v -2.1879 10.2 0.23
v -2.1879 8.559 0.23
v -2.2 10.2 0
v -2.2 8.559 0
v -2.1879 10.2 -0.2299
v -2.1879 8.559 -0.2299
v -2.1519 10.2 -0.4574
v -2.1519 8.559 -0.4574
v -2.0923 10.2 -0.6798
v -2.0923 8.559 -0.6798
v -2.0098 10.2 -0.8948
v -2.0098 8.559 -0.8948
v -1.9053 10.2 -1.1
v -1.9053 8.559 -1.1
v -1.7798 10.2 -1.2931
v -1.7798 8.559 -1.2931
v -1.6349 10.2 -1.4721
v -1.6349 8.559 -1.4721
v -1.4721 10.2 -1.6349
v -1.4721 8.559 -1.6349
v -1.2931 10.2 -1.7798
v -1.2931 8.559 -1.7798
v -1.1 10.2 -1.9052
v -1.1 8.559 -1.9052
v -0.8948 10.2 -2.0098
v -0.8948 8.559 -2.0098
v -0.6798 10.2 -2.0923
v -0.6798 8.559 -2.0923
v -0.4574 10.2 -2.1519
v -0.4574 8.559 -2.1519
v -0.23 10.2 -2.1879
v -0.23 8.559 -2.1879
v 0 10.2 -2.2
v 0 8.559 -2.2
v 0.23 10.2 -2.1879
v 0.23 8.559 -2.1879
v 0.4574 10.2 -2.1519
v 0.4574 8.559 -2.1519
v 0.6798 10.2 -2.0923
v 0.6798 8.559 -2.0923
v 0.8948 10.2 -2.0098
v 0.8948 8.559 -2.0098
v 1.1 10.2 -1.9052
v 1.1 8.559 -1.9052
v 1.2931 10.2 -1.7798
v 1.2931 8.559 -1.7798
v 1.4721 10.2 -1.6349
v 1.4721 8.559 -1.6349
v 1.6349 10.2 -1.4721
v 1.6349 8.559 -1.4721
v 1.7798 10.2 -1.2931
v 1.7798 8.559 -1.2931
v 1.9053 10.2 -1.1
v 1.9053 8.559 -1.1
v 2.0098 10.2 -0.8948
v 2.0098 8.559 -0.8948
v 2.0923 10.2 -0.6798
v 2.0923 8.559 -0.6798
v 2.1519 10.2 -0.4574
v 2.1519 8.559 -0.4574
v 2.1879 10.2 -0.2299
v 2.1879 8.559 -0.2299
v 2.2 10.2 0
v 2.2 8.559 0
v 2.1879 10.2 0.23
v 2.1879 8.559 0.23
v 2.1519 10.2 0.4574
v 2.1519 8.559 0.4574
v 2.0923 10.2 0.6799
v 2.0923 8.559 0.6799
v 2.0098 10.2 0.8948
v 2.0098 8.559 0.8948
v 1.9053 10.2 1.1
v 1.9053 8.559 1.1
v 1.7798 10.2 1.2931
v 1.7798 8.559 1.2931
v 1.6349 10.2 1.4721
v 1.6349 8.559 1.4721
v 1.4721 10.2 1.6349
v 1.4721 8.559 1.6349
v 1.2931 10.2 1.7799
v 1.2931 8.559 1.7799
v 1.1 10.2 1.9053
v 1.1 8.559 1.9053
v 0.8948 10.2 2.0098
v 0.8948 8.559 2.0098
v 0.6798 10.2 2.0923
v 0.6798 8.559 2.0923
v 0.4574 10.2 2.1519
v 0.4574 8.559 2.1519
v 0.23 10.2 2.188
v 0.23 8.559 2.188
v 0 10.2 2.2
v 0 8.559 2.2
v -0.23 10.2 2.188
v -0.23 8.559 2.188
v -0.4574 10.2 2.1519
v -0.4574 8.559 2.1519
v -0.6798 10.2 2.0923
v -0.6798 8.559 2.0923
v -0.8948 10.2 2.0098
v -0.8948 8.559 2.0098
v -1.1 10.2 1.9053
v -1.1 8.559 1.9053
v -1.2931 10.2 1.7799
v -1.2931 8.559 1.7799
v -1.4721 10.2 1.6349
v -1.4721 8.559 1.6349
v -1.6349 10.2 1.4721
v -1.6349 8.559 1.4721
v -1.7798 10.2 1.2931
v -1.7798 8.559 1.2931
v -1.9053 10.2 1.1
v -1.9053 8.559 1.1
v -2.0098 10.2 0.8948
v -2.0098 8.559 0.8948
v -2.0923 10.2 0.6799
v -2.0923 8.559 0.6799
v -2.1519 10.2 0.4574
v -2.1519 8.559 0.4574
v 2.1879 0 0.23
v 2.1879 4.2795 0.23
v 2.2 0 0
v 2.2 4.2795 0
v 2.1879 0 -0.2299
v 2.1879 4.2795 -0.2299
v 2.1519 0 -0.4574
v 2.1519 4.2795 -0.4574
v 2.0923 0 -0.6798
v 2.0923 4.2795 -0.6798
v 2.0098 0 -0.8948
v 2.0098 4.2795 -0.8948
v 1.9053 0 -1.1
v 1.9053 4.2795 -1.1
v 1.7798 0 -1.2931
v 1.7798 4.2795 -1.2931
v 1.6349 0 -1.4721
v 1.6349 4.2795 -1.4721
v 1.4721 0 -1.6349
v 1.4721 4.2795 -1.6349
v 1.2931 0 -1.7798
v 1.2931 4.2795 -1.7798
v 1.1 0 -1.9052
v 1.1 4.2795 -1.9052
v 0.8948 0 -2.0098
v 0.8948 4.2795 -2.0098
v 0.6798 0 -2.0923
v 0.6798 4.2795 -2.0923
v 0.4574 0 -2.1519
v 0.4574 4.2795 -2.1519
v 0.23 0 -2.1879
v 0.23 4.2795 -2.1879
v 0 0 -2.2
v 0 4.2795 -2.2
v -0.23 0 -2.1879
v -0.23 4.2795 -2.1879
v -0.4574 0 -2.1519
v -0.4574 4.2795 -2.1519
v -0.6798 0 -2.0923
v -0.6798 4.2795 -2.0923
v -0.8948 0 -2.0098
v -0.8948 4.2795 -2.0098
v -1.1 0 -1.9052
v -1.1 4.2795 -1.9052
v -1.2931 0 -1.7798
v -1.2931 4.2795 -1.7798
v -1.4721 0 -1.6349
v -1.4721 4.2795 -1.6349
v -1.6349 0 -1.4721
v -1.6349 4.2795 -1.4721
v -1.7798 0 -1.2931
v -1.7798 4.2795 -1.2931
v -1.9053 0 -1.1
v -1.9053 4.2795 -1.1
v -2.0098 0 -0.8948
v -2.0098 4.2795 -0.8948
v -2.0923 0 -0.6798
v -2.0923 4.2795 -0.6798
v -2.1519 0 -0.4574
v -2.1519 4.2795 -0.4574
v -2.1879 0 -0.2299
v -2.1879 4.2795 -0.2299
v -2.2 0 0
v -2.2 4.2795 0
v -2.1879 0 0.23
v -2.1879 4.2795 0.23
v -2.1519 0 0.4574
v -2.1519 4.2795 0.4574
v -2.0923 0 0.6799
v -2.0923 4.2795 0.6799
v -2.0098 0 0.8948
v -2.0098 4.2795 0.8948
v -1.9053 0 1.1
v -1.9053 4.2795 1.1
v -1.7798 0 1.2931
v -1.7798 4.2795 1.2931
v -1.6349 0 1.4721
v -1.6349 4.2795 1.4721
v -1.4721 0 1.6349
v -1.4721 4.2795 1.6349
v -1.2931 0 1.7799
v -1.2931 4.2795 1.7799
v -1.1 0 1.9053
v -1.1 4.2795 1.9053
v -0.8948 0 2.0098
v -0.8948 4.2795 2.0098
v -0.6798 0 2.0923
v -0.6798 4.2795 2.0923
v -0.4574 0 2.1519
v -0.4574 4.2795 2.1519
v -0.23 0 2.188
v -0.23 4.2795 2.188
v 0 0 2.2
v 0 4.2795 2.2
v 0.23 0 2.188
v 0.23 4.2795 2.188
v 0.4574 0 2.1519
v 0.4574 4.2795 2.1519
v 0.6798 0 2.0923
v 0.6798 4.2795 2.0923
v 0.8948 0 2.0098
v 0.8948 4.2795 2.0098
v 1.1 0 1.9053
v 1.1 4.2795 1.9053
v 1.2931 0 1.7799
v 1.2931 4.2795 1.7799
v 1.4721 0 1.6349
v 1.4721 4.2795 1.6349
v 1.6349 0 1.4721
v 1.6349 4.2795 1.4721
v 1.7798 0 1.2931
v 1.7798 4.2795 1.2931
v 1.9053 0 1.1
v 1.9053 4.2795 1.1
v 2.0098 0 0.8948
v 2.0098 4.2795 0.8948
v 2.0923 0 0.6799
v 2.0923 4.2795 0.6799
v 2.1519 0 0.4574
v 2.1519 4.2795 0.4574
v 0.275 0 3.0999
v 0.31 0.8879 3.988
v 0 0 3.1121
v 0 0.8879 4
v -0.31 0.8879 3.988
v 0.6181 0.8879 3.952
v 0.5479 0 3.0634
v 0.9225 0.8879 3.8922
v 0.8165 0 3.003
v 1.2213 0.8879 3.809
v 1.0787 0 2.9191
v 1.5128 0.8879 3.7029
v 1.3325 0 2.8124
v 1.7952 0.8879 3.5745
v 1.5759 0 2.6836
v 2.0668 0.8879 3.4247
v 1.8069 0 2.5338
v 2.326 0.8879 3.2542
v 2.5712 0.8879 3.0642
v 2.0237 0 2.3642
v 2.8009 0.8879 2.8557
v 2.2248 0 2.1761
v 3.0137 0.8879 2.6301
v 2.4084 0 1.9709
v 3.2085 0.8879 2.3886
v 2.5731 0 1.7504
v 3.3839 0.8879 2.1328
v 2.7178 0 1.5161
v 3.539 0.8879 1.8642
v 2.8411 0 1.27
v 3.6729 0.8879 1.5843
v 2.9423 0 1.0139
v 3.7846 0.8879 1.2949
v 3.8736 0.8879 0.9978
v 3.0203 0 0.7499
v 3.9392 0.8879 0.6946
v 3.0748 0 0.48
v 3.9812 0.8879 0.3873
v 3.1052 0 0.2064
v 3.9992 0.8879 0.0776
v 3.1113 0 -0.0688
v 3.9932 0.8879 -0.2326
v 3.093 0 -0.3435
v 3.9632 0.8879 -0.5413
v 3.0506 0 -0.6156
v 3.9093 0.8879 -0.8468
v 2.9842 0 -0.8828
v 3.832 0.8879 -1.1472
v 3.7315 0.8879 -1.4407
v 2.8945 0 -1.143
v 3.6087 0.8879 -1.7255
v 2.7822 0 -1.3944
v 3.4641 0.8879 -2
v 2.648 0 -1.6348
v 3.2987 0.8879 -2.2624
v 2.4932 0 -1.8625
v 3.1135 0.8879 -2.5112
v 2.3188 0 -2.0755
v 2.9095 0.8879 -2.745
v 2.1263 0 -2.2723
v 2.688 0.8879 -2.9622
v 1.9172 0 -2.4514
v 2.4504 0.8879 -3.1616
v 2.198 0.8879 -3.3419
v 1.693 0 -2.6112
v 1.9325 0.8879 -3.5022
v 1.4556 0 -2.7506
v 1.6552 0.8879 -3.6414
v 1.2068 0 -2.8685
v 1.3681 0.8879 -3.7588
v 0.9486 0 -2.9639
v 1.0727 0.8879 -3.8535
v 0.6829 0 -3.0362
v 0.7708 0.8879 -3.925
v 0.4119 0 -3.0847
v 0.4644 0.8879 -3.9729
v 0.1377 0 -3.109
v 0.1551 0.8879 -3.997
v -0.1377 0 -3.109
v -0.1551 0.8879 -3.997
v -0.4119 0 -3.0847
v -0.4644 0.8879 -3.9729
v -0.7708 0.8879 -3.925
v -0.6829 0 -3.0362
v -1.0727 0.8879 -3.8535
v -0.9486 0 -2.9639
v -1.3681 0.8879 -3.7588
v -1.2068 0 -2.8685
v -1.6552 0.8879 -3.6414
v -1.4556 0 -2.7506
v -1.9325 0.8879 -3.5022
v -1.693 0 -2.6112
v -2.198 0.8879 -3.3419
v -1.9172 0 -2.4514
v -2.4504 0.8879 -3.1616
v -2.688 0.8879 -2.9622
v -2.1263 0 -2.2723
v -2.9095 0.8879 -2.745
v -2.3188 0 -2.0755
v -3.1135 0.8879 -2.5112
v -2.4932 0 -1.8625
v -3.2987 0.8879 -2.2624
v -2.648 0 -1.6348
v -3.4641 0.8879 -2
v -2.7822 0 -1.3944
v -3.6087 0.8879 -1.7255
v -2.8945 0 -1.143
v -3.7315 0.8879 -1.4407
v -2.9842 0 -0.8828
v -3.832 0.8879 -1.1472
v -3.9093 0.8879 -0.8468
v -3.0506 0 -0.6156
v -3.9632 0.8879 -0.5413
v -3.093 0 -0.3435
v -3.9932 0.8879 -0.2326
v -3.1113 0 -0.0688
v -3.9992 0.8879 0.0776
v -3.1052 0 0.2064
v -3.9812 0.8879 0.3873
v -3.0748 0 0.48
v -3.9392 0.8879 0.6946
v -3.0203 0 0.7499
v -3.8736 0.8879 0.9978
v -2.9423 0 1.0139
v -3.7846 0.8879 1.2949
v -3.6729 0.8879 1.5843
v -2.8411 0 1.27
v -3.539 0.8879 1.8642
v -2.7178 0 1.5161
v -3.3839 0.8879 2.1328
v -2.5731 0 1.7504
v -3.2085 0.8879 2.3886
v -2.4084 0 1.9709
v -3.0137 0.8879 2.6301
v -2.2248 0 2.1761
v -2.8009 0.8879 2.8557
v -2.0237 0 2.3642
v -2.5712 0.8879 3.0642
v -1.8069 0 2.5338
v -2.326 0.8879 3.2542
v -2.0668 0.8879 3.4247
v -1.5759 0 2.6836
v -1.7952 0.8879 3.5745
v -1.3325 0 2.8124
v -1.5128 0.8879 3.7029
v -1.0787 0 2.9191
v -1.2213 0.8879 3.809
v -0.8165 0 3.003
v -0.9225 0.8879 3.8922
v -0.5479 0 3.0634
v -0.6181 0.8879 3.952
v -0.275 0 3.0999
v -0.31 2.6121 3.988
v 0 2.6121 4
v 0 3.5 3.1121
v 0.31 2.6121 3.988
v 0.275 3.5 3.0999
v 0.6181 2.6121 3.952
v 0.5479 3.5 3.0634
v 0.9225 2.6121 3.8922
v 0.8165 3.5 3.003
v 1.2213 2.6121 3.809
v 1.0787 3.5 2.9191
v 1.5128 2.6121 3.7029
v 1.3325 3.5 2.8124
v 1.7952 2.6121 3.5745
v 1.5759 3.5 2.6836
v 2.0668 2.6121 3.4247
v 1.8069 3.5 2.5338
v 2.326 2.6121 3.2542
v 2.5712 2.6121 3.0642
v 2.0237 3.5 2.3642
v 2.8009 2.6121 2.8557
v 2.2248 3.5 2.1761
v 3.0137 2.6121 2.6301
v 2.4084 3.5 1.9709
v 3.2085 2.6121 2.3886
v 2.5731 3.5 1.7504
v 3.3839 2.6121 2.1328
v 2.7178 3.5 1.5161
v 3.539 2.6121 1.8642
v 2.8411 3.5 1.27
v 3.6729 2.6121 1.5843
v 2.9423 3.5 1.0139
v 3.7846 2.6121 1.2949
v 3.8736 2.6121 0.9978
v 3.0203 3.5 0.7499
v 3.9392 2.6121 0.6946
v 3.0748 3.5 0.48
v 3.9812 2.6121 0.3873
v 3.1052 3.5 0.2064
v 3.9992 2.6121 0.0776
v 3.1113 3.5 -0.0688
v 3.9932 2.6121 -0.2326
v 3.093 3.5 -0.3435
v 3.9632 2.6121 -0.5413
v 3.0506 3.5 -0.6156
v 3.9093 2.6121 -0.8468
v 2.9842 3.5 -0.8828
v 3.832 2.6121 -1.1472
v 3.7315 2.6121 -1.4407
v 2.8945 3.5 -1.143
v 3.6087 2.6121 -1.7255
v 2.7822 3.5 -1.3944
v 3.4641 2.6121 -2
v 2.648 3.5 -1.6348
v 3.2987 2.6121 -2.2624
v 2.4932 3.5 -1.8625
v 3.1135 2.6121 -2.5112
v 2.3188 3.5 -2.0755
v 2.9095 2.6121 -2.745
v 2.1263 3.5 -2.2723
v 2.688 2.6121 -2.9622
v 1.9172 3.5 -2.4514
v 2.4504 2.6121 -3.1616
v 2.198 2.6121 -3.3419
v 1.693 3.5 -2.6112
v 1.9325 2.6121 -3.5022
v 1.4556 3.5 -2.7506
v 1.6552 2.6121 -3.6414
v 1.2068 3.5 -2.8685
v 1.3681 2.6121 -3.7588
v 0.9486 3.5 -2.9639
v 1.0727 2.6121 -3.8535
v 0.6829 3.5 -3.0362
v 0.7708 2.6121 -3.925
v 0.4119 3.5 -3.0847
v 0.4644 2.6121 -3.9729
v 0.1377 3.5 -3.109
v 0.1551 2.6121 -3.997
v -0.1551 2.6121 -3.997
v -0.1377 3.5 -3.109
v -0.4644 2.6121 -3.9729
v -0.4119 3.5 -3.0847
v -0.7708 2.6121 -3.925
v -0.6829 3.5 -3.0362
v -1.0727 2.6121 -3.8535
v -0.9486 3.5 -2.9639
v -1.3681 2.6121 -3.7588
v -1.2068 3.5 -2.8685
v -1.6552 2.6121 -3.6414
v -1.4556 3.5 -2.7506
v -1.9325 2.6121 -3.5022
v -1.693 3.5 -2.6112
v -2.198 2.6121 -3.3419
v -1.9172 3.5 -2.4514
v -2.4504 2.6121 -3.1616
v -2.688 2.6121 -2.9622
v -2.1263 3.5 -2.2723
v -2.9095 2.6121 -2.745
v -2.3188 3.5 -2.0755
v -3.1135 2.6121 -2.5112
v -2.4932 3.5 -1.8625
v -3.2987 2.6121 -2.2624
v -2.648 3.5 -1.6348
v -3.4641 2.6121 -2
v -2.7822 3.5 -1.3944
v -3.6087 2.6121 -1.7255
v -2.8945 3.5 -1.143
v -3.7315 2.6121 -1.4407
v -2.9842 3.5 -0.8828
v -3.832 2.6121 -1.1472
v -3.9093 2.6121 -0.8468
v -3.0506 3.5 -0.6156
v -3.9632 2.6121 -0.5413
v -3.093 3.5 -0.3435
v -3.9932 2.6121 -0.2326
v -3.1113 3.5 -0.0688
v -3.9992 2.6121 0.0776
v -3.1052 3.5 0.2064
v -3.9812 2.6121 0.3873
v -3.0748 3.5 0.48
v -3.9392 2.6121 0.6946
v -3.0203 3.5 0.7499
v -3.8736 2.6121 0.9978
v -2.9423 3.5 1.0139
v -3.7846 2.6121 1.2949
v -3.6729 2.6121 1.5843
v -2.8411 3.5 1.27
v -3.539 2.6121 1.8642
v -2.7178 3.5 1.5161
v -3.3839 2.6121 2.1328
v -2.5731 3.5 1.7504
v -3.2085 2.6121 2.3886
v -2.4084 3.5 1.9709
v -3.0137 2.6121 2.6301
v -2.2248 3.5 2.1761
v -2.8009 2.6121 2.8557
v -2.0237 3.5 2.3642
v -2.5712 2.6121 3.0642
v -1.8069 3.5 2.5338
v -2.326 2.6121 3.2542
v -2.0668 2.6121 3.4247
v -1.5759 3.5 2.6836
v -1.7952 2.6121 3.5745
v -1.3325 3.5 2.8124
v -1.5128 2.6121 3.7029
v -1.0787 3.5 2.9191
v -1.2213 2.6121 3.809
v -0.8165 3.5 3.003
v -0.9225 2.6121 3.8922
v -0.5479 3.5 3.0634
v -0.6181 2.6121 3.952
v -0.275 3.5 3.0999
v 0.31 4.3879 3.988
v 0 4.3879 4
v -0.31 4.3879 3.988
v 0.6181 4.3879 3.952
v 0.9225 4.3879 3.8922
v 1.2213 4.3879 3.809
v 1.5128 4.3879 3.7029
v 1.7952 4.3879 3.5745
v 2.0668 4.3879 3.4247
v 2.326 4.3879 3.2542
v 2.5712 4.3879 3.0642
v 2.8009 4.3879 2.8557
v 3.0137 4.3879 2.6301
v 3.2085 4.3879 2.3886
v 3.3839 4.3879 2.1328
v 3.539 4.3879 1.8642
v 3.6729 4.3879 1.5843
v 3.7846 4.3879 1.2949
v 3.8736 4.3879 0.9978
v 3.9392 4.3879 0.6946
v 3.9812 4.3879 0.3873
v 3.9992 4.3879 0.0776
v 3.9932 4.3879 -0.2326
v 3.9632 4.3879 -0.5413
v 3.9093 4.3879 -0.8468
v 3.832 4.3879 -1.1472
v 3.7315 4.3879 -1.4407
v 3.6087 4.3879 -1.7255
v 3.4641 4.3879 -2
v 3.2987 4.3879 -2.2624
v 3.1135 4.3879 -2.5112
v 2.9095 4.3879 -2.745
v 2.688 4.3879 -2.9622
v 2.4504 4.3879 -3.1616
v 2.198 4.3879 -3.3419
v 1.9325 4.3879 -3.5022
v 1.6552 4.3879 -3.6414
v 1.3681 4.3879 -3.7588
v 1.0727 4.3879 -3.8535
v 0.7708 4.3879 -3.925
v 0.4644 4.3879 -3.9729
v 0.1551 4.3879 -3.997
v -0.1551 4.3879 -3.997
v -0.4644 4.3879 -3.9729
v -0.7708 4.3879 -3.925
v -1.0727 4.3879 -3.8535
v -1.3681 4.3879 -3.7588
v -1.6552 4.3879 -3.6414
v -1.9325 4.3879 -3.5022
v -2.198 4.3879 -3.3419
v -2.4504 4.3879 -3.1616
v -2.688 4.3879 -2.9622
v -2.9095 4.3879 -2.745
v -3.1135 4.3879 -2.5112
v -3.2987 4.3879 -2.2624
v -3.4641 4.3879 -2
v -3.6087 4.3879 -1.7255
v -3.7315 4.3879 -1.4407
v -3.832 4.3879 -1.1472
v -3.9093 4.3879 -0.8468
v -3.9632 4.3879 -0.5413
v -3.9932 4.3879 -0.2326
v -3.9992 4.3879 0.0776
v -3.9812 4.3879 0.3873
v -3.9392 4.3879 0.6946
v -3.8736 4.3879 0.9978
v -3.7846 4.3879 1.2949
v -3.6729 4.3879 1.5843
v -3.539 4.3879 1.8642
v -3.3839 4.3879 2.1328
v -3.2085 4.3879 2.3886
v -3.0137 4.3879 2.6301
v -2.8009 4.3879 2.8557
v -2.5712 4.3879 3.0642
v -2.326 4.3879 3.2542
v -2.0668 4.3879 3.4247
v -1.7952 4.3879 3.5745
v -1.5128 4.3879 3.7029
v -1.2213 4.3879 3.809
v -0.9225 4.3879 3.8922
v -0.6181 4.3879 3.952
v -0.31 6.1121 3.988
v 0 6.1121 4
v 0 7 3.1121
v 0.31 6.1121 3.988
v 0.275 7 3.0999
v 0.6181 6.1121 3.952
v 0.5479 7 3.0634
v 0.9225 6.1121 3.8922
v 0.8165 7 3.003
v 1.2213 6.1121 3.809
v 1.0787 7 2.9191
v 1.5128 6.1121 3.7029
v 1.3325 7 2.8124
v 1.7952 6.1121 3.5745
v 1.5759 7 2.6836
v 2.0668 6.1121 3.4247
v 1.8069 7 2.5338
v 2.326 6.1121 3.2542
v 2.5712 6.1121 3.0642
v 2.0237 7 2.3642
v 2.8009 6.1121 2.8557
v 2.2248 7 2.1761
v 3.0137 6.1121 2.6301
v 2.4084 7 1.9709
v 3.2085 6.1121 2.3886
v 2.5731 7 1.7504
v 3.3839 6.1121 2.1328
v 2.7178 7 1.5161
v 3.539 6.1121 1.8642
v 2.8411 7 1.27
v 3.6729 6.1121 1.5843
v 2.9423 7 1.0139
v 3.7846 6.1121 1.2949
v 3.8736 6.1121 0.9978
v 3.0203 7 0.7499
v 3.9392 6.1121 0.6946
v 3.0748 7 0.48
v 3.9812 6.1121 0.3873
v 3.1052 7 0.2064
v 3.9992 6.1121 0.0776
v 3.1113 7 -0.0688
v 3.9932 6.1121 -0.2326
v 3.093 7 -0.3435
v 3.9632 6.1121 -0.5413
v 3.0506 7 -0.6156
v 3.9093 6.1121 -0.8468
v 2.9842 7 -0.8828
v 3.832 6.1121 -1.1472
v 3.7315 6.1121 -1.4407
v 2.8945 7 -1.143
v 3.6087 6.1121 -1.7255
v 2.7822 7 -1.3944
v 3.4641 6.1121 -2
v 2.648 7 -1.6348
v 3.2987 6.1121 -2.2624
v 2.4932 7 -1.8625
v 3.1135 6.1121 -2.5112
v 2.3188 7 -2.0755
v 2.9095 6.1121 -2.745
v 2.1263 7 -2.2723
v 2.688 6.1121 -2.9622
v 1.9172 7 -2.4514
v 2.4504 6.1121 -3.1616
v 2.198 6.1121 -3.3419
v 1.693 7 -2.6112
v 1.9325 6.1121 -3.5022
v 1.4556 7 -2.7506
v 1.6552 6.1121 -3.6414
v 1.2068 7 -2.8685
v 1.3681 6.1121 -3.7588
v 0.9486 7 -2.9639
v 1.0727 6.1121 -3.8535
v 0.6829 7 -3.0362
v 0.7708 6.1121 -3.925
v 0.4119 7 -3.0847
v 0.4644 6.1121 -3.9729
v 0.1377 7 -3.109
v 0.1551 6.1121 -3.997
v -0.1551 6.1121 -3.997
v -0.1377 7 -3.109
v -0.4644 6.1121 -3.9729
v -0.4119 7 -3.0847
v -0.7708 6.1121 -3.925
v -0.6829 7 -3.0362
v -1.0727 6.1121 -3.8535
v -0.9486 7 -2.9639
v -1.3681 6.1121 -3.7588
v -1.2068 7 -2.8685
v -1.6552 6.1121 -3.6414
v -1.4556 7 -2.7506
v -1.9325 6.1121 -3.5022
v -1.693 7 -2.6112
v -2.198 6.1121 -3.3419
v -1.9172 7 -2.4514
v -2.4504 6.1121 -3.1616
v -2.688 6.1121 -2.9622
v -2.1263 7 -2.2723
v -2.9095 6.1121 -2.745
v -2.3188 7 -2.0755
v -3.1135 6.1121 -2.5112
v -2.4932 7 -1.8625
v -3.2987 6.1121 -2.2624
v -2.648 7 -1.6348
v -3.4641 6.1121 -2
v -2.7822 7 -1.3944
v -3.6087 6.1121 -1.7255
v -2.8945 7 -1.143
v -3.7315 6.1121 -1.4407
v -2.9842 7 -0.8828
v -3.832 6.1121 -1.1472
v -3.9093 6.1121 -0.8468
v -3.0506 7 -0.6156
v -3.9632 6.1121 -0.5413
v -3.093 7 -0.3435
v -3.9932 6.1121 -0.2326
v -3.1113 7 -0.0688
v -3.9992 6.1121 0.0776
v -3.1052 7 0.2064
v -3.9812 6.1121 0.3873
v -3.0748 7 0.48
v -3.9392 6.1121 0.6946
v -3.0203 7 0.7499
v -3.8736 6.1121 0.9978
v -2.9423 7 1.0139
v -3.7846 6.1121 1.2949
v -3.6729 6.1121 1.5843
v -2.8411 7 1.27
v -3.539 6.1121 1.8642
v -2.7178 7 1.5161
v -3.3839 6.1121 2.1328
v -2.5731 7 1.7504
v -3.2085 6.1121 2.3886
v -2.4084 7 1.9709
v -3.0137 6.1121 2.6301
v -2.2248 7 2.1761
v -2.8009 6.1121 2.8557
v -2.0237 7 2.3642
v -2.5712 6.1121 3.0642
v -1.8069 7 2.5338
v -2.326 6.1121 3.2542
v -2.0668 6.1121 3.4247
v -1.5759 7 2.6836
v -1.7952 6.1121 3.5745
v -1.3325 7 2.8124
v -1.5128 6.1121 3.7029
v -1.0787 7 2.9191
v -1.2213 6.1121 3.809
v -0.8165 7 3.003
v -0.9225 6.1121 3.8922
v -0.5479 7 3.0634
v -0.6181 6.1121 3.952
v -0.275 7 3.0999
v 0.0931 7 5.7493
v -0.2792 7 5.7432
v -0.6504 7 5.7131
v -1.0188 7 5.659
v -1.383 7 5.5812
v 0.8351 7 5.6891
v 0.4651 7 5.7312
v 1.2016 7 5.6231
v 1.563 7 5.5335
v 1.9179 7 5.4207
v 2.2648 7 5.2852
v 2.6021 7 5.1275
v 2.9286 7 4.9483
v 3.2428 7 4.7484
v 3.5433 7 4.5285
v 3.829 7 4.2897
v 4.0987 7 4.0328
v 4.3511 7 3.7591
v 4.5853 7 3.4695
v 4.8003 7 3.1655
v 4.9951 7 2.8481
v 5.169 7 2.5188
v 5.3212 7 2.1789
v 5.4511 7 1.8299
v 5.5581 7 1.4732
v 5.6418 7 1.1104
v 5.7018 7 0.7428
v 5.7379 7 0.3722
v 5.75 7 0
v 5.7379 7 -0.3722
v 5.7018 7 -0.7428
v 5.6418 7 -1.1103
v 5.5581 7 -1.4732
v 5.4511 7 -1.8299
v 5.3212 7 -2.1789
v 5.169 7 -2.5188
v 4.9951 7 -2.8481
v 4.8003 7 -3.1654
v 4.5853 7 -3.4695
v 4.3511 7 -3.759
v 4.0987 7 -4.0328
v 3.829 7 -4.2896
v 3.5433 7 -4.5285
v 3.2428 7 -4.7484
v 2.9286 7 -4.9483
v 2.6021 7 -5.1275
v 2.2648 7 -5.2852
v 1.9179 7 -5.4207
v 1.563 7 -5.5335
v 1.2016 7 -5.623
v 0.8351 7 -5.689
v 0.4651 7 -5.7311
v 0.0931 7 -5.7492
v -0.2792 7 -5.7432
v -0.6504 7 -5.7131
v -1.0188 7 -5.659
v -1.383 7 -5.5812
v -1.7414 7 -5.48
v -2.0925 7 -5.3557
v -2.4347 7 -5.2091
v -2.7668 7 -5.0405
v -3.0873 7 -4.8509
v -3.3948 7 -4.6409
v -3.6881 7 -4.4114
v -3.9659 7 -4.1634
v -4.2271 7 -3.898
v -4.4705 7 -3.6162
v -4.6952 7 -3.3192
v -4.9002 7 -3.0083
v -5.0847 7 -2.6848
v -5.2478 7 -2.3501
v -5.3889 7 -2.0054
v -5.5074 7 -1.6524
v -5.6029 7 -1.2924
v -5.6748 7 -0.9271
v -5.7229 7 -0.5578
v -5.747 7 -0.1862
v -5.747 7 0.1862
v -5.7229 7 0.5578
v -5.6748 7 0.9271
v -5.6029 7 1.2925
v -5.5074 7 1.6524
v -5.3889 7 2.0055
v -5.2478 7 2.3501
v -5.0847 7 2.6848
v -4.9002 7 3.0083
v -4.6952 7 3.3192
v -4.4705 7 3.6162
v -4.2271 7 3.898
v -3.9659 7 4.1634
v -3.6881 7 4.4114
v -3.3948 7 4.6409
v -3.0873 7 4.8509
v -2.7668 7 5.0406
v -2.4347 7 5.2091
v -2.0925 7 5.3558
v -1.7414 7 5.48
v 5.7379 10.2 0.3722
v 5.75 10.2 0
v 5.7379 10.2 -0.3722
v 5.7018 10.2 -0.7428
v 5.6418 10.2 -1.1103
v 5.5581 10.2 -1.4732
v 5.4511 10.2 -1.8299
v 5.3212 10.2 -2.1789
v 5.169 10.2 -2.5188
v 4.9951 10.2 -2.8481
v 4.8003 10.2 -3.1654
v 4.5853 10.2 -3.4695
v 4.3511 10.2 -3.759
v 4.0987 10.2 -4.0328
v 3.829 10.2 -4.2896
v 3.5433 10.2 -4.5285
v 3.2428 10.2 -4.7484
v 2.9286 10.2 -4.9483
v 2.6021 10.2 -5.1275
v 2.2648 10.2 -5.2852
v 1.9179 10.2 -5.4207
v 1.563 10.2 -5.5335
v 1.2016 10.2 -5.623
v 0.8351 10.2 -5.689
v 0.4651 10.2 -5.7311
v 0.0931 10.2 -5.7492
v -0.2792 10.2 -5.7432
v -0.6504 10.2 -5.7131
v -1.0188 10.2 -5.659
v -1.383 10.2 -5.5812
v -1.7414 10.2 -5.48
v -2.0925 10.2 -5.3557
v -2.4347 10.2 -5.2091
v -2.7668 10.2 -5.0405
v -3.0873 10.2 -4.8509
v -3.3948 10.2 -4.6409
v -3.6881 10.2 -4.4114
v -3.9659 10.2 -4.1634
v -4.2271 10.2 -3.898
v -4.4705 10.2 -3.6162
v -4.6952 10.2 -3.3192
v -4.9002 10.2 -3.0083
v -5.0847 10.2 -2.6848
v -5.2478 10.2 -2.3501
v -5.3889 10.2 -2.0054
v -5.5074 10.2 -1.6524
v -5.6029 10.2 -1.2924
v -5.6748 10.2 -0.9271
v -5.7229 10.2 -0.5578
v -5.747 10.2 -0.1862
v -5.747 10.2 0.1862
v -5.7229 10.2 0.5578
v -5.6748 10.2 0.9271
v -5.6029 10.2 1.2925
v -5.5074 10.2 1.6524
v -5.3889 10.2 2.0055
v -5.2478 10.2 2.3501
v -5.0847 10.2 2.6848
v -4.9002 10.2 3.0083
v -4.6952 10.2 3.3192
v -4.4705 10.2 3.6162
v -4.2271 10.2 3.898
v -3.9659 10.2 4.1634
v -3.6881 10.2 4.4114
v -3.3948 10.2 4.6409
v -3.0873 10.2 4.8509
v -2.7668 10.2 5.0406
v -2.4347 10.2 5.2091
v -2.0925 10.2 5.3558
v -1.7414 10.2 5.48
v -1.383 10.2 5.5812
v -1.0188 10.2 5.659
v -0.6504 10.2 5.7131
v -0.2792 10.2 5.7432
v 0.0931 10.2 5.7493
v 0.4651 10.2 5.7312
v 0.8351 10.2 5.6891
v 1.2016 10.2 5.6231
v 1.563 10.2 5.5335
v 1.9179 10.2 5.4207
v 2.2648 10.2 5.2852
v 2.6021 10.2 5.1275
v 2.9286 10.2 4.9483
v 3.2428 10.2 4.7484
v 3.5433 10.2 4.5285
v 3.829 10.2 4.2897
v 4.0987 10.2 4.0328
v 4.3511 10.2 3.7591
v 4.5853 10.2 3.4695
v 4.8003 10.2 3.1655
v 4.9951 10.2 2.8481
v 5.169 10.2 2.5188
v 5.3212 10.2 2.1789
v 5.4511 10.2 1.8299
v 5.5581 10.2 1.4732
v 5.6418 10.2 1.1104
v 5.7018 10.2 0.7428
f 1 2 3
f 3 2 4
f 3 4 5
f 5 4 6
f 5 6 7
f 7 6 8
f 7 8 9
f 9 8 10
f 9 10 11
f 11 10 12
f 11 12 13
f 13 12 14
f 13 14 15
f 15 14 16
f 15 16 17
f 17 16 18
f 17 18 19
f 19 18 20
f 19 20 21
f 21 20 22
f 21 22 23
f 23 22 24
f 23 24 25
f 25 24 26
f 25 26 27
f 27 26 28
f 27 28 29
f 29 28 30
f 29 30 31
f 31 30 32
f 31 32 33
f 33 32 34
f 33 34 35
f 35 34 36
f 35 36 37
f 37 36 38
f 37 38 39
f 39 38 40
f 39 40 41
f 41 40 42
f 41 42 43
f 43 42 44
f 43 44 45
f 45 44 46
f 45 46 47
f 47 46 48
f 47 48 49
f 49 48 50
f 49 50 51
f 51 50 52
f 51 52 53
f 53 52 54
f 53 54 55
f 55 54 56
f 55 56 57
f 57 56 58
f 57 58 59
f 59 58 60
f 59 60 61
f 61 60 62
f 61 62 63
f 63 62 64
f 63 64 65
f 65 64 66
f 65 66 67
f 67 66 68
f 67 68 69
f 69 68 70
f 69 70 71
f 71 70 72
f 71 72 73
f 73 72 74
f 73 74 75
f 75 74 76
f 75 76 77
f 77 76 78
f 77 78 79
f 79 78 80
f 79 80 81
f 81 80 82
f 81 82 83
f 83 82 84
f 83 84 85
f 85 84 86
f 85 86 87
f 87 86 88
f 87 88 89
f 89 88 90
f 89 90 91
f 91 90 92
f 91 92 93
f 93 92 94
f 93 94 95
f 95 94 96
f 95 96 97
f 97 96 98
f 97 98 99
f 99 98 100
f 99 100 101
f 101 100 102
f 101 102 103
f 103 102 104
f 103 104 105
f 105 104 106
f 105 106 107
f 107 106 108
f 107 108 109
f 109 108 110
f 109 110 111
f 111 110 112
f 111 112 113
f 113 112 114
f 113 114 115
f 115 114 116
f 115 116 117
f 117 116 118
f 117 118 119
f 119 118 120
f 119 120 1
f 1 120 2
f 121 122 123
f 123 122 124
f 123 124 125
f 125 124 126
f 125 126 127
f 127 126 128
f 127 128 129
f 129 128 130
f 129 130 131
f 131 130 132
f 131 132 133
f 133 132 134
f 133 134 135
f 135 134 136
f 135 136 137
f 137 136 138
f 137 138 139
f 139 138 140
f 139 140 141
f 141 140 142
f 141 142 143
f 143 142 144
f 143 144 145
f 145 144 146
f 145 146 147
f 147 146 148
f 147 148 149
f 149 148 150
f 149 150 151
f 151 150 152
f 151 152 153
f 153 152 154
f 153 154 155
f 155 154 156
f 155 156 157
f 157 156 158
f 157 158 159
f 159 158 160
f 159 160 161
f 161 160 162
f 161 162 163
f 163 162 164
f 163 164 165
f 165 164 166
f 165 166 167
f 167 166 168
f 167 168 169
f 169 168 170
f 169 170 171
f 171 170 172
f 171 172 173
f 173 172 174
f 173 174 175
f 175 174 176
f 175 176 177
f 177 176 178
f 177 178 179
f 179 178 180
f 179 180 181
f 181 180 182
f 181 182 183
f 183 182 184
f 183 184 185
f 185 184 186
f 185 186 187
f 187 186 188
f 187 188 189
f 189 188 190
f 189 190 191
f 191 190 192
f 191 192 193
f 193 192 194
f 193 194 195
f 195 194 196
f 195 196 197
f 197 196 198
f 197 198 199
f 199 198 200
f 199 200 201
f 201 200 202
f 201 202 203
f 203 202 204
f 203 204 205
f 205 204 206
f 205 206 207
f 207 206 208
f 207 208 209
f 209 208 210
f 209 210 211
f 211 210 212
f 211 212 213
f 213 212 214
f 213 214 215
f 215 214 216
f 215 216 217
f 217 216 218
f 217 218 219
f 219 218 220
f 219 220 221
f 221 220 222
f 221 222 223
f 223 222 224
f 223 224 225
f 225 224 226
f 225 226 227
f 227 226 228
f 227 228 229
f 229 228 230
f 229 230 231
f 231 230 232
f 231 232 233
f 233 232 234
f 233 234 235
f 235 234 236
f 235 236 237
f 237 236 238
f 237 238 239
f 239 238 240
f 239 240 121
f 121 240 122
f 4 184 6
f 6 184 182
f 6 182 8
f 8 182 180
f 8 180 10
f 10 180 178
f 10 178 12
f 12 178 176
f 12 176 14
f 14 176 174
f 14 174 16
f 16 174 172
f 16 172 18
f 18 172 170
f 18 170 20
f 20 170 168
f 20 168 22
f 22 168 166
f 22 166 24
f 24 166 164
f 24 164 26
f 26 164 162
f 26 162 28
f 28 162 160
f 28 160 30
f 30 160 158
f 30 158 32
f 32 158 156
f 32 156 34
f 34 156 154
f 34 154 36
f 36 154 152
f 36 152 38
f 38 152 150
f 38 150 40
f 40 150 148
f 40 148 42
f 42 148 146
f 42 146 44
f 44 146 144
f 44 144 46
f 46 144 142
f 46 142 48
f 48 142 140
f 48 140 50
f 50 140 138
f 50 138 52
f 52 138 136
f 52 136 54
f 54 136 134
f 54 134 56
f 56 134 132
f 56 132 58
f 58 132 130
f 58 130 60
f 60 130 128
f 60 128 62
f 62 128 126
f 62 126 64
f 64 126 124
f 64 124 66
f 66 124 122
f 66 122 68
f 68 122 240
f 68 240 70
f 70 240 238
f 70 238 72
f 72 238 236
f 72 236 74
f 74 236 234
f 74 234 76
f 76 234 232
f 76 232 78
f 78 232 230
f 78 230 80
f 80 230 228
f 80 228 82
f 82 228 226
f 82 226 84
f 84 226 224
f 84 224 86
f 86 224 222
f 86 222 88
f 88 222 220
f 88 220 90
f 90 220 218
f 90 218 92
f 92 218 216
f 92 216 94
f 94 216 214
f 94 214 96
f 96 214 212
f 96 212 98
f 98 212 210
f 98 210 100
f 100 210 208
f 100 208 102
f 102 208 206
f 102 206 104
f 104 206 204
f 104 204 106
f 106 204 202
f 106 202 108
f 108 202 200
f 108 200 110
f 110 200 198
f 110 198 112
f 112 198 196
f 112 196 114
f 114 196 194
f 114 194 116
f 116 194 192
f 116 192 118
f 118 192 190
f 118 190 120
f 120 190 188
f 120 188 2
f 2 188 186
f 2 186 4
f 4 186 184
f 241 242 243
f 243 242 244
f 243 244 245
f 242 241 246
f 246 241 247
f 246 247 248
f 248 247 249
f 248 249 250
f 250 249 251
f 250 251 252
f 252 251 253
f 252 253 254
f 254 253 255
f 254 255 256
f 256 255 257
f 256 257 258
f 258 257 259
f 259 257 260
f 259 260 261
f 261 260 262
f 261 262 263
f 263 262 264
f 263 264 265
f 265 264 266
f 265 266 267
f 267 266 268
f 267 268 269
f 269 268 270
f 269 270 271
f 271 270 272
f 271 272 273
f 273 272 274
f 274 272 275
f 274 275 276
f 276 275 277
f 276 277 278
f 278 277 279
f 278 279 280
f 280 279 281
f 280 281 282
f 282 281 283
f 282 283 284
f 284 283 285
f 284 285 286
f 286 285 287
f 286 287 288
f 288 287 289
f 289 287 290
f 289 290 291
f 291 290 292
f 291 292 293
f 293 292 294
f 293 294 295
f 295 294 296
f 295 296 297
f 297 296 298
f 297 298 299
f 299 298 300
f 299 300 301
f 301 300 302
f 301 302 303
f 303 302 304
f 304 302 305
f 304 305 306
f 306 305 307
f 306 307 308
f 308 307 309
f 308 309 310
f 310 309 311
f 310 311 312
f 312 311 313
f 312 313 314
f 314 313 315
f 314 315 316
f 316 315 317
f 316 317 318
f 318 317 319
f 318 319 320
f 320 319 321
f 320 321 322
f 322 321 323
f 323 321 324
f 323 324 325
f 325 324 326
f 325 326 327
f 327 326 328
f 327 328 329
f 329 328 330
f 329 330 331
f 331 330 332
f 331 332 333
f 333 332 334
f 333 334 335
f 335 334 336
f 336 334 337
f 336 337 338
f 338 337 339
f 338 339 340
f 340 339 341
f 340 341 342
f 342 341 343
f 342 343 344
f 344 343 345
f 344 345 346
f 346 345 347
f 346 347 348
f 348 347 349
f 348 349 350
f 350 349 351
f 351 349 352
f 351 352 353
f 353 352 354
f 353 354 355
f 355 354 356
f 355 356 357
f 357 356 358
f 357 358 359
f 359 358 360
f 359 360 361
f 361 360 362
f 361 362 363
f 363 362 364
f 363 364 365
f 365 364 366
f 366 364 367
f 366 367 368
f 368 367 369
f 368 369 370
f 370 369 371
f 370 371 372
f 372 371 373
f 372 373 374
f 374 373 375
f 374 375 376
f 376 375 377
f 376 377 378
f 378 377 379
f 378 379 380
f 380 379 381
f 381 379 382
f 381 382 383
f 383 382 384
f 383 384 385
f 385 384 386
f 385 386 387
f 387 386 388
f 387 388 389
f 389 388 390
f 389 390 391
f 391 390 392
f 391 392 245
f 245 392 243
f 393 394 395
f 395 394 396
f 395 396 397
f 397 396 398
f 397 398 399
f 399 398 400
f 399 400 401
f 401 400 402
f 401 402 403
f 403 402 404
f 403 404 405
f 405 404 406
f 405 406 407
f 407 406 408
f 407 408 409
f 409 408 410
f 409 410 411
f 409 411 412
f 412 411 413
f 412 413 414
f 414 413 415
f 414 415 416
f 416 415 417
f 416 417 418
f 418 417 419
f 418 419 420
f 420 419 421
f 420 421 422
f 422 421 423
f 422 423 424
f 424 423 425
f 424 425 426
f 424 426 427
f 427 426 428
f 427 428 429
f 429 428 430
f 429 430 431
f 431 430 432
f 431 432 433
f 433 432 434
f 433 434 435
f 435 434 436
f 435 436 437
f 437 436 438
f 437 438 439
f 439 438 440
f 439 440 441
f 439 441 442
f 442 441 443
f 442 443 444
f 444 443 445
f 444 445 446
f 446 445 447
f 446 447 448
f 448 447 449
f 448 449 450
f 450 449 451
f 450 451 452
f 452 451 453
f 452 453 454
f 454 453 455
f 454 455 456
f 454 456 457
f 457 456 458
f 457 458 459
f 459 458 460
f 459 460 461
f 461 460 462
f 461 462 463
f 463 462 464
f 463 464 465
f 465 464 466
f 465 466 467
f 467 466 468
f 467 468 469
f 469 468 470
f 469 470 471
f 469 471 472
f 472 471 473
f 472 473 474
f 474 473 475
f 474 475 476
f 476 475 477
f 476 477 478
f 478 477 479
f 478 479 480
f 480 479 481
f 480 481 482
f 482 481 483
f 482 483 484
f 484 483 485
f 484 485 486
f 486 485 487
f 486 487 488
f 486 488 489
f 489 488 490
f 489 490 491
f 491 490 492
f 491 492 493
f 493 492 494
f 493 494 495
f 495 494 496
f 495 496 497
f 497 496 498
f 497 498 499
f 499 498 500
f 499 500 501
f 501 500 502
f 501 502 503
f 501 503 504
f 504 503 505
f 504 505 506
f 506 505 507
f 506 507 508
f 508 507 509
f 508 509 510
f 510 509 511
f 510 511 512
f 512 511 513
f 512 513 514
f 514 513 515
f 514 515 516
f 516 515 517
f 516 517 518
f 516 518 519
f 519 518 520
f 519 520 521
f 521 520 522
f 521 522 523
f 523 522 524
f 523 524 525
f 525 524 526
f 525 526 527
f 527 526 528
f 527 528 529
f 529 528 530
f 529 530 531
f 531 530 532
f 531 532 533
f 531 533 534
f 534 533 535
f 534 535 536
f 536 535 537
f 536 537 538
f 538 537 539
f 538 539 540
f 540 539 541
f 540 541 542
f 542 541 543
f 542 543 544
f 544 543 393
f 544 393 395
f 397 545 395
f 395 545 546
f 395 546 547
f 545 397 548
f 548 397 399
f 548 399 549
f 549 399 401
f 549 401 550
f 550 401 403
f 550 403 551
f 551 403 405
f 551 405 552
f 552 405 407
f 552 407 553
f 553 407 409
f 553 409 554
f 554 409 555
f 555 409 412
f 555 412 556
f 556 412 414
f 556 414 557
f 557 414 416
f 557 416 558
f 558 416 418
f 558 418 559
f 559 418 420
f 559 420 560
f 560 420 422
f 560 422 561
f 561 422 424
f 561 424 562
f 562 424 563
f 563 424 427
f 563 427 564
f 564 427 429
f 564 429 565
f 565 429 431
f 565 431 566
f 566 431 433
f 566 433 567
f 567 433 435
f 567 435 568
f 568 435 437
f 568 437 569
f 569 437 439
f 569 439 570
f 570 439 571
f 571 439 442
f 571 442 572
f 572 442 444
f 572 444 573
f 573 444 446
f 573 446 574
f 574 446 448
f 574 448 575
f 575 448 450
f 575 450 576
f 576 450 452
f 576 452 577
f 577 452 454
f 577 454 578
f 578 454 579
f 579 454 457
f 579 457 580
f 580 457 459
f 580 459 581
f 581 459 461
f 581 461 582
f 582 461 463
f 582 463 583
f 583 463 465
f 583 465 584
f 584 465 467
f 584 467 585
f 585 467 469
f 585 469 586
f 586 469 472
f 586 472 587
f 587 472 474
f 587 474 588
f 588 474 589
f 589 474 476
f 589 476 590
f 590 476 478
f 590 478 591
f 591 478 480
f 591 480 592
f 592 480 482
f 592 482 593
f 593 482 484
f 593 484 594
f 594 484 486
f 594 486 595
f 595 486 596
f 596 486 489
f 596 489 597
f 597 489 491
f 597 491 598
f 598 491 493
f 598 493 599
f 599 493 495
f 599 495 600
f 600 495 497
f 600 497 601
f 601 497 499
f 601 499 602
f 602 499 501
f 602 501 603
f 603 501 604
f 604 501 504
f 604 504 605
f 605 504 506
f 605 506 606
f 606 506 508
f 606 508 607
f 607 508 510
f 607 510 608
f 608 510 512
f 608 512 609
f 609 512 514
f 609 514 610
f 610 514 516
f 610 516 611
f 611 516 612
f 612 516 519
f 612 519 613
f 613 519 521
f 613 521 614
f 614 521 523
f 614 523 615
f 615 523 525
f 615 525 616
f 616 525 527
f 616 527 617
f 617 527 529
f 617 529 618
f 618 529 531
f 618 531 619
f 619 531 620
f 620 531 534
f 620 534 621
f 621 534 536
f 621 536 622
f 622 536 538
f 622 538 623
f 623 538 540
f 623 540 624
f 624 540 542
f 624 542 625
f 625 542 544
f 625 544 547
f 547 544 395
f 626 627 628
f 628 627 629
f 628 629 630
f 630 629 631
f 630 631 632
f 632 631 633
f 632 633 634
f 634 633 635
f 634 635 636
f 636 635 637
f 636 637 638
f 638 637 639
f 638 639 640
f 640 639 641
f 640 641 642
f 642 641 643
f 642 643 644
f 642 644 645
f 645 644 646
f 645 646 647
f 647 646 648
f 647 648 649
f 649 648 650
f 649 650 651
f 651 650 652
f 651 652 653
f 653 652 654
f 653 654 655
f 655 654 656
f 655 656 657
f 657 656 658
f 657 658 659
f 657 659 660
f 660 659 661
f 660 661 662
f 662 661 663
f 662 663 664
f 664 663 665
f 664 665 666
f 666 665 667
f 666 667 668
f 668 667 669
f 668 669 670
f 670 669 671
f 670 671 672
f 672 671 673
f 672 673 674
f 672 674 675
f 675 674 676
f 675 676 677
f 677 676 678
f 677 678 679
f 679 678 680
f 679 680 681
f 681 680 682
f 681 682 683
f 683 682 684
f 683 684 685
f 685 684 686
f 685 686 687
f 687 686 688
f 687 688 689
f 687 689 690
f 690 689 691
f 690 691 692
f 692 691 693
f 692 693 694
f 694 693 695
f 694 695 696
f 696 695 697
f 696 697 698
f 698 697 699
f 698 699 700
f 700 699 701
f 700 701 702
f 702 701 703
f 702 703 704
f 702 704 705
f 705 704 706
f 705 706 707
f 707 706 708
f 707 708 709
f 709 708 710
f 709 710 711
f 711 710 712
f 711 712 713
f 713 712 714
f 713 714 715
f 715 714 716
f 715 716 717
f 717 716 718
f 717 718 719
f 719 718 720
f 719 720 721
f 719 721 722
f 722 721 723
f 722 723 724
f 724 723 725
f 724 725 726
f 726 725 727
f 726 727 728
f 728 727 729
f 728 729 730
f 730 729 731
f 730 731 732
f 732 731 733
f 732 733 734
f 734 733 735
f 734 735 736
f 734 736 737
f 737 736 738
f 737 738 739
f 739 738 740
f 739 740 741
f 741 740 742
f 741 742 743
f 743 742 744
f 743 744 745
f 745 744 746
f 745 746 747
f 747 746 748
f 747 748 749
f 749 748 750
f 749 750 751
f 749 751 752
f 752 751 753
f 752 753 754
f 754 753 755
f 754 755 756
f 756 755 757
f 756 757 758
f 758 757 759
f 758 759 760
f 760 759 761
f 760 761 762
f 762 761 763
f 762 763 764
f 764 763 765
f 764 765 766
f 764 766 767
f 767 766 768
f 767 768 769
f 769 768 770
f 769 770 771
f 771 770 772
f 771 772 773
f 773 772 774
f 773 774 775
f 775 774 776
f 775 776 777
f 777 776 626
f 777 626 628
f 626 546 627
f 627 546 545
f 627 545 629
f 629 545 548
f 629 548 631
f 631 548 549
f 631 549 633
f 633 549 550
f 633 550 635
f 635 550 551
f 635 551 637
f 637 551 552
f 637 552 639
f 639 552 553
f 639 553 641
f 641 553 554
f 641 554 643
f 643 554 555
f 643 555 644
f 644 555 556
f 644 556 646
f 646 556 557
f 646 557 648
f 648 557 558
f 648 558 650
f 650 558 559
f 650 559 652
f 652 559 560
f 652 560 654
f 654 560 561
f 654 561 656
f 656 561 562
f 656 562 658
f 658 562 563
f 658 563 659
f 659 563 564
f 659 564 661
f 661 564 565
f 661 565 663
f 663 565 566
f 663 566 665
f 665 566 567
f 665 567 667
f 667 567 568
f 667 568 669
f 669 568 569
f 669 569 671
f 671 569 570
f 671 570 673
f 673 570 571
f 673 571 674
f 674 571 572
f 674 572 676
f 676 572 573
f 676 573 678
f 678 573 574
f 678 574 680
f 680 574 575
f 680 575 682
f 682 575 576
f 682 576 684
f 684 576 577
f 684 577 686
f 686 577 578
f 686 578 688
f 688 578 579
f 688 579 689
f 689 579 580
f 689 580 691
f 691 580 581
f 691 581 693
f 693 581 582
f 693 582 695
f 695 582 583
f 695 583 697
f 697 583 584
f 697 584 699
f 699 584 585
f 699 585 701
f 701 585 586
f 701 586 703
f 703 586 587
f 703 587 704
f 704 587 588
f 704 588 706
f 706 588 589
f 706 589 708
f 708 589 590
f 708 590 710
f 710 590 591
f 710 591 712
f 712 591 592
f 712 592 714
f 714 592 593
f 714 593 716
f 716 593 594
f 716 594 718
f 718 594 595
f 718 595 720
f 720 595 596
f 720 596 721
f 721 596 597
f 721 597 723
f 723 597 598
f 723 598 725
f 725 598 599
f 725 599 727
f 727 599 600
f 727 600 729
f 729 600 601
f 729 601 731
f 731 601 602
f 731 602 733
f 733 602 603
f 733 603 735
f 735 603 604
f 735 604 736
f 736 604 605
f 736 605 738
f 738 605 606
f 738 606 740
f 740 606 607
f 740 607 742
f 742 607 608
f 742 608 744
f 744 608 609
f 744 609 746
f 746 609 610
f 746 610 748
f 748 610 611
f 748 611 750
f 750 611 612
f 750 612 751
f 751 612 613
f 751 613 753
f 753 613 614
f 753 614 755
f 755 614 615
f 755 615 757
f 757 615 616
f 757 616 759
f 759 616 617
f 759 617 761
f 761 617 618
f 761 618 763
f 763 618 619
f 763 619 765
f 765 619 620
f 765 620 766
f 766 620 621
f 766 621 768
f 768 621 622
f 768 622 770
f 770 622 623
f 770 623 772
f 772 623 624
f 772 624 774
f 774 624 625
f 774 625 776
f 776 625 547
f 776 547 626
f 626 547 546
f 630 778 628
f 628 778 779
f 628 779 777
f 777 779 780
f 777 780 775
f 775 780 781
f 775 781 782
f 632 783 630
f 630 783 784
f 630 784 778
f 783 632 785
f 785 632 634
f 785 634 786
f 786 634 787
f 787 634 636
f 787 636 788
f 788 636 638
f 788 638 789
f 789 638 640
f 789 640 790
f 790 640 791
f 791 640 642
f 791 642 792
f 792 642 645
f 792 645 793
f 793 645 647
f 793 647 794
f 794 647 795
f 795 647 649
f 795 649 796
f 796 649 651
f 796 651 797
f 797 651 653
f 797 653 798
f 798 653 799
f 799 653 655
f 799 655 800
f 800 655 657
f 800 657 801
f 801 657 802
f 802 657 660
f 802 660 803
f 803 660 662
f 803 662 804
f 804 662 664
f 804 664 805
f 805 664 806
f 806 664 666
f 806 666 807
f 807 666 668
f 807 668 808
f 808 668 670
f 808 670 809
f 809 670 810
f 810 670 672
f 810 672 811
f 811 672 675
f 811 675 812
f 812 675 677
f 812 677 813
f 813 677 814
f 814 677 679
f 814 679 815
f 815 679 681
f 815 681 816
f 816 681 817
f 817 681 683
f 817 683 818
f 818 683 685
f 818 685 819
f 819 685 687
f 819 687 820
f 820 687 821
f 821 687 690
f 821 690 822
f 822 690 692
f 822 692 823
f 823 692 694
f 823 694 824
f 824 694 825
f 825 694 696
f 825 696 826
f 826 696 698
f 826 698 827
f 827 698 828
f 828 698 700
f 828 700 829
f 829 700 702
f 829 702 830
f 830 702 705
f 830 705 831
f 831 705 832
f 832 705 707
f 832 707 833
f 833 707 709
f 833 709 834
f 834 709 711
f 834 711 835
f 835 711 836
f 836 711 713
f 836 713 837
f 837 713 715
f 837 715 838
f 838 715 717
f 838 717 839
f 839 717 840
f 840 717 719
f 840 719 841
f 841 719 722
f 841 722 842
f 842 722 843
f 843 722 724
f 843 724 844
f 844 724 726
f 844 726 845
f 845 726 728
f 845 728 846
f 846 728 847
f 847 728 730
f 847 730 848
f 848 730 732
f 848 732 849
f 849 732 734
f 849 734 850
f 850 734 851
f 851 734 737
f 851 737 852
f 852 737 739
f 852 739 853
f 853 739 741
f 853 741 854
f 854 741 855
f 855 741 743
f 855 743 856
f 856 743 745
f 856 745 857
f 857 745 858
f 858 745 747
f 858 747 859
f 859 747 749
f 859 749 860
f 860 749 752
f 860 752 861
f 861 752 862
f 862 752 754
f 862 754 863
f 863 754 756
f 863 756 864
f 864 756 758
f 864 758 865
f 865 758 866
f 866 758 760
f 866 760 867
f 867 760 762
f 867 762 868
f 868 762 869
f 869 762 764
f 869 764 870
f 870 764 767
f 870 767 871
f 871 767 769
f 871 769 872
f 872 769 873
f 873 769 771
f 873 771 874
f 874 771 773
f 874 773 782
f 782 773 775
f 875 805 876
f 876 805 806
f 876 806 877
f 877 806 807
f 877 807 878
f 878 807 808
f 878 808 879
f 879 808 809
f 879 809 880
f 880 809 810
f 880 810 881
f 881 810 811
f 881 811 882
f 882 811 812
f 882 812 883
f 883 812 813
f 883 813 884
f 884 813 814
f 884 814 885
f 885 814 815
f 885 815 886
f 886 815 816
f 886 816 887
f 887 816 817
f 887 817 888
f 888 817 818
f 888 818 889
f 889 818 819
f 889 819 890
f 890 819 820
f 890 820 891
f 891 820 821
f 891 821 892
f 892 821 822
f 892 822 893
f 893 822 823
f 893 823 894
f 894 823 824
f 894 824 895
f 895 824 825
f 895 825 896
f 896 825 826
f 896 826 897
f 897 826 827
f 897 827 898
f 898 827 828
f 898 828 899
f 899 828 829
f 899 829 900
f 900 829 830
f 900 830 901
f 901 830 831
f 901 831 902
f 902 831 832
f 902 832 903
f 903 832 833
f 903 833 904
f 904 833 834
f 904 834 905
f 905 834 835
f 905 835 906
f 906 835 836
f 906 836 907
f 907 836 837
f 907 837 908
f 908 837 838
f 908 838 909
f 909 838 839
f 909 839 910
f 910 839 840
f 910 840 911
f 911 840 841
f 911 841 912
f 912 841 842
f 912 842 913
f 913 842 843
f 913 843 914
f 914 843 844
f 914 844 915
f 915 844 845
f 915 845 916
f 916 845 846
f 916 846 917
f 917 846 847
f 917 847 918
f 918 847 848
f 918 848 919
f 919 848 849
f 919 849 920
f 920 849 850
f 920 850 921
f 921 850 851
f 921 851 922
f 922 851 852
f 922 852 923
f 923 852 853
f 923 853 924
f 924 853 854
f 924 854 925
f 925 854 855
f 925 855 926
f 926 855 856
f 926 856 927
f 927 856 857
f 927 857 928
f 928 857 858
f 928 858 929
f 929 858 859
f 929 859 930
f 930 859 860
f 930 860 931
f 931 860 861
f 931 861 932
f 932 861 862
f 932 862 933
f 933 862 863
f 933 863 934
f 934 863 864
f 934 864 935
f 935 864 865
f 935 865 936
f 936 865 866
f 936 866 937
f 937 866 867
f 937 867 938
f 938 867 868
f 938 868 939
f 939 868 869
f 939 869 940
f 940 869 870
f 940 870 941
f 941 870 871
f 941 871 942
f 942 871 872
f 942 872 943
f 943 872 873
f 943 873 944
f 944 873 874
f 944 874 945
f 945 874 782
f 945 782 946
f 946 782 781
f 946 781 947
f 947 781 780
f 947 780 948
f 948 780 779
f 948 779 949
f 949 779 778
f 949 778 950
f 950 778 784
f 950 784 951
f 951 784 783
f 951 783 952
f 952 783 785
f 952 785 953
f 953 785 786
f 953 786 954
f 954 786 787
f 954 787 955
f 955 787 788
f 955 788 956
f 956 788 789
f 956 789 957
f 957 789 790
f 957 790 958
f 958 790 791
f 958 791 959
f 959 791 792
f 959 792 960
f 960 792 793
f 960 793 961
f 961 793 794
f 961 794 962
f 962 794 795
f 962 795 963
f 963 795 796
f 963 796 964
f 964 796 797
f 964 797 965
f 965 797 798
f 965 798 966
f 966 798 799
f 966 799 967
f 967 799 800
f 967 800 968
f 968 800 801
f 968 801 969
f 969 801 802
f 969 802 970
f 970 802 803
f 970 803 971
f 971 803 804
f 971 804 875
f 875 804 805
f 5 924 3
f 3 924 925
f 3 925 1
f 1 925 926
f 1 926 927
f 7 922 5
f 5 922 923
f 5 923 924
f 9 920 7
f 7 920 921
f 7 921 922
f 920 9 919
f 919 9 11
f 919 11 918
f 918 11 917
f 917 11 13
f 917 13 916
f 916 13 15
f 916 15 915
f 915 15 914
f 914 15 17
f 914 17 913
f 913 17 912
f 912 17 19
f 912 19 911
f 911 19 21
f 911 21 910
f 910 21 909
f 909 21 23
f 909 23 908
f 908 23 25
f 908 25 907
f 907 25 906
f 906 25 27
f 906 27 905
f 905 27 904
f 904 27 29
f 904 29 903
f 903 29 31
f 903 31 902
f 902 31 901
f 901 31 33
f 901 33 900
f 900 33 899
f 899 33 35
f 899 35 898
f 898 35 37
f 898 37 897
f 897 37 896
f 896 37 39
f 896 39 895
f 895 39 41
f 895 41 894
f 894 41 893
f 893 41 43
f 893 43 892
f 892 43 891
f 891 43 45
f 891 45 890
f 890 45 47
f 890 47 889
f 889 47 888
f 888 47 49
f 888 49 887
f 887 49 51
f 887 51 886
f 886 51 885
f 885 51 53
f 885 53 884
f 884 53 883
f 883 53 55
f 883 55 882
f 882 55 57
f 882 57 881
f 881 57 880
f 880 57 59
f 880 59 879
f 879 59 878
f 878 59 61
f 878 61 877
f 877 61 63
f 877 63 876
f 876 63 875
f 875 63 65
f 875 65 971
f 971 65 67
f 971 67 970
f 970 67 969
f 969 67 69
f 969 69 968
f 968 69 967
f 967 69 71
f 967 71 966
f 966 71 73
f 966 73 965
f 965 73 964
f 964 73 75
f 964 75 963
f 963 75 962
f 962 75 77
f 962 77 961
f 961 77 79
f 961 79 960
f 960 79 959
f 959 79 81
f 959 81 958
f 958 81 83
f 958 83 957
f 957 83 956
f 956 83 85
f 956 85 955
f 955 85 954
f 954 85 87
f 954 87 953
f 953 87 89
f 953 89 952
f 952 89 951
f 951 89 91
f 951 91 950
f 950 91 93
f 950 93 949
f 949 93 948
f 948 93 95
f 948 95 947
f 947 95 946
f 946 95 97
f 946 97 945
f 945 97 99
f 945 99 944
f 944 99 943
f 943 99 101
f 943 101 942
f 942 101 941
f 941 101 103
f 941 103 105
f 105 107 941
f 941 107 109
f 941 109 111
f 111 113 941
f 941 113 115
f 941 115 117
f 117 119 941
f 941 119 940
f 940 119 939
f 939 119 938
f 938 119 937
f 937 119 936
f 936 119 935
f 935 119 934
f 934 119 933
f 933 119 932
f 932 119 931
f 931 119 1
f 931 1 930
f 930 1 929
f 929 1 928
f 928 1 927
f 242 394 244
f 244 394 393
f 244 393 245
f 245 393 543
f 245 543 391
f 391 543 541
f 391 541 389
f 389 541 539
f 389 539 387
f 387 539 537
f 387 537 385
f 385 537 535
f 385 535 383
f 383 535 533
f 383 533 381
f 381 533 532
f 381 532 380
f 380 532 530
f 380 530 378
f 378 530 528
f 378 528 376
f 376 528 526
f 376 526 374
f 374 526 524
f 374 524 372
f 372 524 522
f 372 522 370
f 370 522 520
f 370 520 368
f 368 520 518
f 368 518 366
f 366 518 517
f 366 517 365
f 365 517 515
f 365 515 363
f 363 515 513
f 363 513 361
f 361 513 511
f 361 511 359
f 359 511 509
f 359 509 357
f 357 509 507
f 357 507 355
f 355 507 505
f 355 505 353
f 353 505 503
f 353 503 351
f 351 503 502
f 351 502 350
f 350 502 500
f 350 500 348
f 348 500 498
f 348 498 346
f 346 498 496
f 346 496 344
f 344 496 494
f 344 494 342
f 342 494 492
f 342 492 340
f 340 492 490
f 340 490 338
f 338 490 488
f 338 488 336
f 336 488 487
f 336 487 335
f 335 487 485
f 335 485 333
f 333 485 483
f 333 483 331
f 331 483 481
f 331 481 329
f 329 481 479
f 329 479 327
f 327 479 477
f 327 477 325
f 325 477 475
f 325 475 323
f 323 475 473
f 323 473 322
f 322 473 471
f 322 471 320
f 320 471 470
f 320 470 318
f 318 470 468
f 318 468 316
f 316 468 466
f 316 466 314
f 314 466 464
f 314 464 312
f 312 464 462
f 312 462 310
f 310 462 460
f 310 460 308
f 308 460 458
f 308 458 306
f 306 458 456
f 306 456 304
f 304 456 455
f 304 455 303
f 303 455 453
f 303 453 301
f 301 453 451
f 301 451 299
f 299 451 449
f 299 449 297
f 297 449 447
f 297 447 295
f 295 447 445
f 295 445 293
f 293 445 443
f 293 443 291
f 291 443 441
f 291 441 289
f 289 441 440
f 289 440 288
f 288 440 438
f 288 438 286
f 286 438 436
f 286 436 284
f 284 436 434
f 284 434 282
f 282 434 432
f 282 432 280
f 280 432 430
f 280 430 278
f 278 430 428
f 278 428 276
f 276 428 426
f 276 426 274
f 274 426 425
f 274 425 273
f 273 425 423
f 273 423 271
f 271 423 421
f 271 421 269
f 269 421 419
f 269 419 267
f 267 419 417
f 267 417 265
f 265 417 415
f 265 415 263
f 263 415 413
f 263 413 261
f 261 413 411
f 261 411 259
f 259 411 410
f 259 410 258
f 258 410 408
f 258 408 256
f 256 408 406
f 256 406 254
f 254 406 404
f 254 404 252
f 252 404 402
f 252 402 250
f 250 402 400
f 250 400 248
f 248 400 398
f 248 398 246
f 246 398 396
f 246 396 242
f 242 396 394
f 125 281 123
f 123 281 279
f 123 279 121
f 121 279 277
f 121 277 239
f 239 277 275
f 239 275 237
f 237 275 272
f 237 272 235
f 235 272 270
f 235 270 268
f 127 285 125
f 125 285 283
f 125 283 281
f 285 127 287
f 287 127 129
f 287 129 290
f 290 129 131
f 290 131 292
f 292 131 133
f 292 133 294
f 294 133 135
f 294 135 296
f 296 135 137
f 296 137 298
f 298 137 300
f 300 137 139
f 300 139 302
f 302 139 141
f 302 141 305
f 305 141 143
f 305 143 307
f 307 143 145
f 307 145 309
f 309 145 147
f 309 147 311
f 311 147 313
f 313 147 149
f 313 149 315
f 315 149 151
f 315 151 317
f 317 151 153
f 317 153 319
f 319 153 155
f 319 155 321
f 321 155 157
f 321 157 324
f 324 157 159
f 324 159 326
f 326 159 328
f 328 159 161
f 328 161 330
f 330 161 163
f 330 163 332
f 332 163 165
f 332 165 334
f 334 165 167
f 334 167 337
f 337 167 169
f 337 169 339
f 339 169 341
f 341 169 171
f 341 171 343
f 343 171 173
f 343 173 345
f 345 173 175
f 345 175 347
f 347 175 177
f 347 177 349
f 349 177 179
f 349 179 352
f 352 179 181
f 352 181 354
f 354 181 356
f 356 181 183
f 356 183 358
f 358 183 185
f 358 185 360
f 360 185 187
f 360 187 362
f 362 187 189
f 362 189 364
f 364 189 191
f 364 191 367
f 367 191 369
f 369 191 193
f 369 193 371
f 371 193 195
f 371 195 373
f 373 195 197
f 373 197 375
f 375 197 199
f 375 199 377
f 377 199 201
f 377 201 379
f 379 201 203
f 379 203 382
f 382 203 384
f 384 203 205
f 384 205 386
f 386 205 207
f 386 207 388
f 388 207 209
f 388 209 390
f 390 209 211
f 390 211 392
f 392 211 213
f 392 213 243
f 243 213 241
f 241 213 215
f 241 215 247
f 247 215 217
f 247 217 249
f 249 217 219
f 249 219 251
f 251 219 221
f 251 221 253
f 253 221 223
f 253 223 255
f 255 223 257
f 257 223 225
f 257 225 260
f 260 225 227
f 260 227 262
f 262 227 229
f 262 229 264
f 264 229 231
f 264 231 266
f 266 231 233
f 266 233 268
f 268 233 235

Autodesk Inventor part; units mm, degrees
ref_plane "YZ Plane" through (0, 0, 0) normal (1, 0, 0) x (0, 1, 0)
ref_plane "XZ Plane" through (0, 0, 0) normal (0, 1, 0) x (-1, 0, 0)
ref_plane "XY Plane" through (0, 0, 0) normal (0, 0, 1) x (1, 0, 0)
sketch "Sketch1" plane through (0, 0, 0) normal (0, 1, 0) x (-1, 0, 0)
  circle A0 centre (0, 0) radius 4
  dimension "d0" = 8
extrude "Extrusion1" add sketch "Sketch1" along normal blind 7
sketch "Sketch2" plane through (0, 7, 0) normal (0, 1, 0) x (1, 0, 0)
  circle A0 centre (0, 0) radius 5.75
  dimension "d3" = 11.5
extrude "Extrusion2" add sketch "Sketch2" along normal blind 3.2
sketch "Sketch4" plane through (0, 0, 0) normal (1, 0, 0) x (0, 1, 0)
  line L0 (20.4, 3.1121) -> (19.5121, 4)
  line L1 (19.5121, 4) -> (17.7879, 4)
  line L2 (16.9, 3.1121) -> (17.7879, 4)
  line L3 (13.4, 3.1121) -> (14.2879, 4)
  line L4 (14.2879, 4) -> (16.0121, 4)
  line L5 (16.9, 3.1121) -> (16.0121, 4)
  line L6 (13.4, 3.1121) -> (13.4, 6.6121)
  line L7 (13.4, 8.5445) -> (20.4, 8.5445)
  line L8 (20.4, 8.5445) -> (20.4, 3.1121)
  line L9 (0, 3.1121) -> (0.8879, 4)
  line L10 (0.8879, 4) -> (2.6121, 4)
  line L11 (3.5, 3.1121) -> (2.6121, 4)
  line L12 (3.5, 3.1121) -> (4.3879, 4)
  line L13 (6.1121, 4) -> (4.3879, 4)
  line L14 (7, 3.1121) -> (6.1121, 4)
  line L15 (7, 3.1121) -> (7, 6.6121)
  line L16 (7, 8.5445) -> (0, 8.5445)
  line L17 (0, 8.5445) -> (0, 3.1121)
  line L18 (13.4, 6.6121) -> (7, 6.6121)
  line L19 (13.4, 8.5445) -> (7, 8.5445)
  line L20 (-4.08, 0) -> (24.48, 0) projected
  point P0 (0, 0)
revolve "Revolution1" cut sketch "Sketch4" angle 360 about axis through (0, -10, 0) along (0, 1, 0)
hole "Hole2" at (0, 0, 0) direction (0, 1, 0) diameter 4.4 end through all
properties part number "Split spacer"
